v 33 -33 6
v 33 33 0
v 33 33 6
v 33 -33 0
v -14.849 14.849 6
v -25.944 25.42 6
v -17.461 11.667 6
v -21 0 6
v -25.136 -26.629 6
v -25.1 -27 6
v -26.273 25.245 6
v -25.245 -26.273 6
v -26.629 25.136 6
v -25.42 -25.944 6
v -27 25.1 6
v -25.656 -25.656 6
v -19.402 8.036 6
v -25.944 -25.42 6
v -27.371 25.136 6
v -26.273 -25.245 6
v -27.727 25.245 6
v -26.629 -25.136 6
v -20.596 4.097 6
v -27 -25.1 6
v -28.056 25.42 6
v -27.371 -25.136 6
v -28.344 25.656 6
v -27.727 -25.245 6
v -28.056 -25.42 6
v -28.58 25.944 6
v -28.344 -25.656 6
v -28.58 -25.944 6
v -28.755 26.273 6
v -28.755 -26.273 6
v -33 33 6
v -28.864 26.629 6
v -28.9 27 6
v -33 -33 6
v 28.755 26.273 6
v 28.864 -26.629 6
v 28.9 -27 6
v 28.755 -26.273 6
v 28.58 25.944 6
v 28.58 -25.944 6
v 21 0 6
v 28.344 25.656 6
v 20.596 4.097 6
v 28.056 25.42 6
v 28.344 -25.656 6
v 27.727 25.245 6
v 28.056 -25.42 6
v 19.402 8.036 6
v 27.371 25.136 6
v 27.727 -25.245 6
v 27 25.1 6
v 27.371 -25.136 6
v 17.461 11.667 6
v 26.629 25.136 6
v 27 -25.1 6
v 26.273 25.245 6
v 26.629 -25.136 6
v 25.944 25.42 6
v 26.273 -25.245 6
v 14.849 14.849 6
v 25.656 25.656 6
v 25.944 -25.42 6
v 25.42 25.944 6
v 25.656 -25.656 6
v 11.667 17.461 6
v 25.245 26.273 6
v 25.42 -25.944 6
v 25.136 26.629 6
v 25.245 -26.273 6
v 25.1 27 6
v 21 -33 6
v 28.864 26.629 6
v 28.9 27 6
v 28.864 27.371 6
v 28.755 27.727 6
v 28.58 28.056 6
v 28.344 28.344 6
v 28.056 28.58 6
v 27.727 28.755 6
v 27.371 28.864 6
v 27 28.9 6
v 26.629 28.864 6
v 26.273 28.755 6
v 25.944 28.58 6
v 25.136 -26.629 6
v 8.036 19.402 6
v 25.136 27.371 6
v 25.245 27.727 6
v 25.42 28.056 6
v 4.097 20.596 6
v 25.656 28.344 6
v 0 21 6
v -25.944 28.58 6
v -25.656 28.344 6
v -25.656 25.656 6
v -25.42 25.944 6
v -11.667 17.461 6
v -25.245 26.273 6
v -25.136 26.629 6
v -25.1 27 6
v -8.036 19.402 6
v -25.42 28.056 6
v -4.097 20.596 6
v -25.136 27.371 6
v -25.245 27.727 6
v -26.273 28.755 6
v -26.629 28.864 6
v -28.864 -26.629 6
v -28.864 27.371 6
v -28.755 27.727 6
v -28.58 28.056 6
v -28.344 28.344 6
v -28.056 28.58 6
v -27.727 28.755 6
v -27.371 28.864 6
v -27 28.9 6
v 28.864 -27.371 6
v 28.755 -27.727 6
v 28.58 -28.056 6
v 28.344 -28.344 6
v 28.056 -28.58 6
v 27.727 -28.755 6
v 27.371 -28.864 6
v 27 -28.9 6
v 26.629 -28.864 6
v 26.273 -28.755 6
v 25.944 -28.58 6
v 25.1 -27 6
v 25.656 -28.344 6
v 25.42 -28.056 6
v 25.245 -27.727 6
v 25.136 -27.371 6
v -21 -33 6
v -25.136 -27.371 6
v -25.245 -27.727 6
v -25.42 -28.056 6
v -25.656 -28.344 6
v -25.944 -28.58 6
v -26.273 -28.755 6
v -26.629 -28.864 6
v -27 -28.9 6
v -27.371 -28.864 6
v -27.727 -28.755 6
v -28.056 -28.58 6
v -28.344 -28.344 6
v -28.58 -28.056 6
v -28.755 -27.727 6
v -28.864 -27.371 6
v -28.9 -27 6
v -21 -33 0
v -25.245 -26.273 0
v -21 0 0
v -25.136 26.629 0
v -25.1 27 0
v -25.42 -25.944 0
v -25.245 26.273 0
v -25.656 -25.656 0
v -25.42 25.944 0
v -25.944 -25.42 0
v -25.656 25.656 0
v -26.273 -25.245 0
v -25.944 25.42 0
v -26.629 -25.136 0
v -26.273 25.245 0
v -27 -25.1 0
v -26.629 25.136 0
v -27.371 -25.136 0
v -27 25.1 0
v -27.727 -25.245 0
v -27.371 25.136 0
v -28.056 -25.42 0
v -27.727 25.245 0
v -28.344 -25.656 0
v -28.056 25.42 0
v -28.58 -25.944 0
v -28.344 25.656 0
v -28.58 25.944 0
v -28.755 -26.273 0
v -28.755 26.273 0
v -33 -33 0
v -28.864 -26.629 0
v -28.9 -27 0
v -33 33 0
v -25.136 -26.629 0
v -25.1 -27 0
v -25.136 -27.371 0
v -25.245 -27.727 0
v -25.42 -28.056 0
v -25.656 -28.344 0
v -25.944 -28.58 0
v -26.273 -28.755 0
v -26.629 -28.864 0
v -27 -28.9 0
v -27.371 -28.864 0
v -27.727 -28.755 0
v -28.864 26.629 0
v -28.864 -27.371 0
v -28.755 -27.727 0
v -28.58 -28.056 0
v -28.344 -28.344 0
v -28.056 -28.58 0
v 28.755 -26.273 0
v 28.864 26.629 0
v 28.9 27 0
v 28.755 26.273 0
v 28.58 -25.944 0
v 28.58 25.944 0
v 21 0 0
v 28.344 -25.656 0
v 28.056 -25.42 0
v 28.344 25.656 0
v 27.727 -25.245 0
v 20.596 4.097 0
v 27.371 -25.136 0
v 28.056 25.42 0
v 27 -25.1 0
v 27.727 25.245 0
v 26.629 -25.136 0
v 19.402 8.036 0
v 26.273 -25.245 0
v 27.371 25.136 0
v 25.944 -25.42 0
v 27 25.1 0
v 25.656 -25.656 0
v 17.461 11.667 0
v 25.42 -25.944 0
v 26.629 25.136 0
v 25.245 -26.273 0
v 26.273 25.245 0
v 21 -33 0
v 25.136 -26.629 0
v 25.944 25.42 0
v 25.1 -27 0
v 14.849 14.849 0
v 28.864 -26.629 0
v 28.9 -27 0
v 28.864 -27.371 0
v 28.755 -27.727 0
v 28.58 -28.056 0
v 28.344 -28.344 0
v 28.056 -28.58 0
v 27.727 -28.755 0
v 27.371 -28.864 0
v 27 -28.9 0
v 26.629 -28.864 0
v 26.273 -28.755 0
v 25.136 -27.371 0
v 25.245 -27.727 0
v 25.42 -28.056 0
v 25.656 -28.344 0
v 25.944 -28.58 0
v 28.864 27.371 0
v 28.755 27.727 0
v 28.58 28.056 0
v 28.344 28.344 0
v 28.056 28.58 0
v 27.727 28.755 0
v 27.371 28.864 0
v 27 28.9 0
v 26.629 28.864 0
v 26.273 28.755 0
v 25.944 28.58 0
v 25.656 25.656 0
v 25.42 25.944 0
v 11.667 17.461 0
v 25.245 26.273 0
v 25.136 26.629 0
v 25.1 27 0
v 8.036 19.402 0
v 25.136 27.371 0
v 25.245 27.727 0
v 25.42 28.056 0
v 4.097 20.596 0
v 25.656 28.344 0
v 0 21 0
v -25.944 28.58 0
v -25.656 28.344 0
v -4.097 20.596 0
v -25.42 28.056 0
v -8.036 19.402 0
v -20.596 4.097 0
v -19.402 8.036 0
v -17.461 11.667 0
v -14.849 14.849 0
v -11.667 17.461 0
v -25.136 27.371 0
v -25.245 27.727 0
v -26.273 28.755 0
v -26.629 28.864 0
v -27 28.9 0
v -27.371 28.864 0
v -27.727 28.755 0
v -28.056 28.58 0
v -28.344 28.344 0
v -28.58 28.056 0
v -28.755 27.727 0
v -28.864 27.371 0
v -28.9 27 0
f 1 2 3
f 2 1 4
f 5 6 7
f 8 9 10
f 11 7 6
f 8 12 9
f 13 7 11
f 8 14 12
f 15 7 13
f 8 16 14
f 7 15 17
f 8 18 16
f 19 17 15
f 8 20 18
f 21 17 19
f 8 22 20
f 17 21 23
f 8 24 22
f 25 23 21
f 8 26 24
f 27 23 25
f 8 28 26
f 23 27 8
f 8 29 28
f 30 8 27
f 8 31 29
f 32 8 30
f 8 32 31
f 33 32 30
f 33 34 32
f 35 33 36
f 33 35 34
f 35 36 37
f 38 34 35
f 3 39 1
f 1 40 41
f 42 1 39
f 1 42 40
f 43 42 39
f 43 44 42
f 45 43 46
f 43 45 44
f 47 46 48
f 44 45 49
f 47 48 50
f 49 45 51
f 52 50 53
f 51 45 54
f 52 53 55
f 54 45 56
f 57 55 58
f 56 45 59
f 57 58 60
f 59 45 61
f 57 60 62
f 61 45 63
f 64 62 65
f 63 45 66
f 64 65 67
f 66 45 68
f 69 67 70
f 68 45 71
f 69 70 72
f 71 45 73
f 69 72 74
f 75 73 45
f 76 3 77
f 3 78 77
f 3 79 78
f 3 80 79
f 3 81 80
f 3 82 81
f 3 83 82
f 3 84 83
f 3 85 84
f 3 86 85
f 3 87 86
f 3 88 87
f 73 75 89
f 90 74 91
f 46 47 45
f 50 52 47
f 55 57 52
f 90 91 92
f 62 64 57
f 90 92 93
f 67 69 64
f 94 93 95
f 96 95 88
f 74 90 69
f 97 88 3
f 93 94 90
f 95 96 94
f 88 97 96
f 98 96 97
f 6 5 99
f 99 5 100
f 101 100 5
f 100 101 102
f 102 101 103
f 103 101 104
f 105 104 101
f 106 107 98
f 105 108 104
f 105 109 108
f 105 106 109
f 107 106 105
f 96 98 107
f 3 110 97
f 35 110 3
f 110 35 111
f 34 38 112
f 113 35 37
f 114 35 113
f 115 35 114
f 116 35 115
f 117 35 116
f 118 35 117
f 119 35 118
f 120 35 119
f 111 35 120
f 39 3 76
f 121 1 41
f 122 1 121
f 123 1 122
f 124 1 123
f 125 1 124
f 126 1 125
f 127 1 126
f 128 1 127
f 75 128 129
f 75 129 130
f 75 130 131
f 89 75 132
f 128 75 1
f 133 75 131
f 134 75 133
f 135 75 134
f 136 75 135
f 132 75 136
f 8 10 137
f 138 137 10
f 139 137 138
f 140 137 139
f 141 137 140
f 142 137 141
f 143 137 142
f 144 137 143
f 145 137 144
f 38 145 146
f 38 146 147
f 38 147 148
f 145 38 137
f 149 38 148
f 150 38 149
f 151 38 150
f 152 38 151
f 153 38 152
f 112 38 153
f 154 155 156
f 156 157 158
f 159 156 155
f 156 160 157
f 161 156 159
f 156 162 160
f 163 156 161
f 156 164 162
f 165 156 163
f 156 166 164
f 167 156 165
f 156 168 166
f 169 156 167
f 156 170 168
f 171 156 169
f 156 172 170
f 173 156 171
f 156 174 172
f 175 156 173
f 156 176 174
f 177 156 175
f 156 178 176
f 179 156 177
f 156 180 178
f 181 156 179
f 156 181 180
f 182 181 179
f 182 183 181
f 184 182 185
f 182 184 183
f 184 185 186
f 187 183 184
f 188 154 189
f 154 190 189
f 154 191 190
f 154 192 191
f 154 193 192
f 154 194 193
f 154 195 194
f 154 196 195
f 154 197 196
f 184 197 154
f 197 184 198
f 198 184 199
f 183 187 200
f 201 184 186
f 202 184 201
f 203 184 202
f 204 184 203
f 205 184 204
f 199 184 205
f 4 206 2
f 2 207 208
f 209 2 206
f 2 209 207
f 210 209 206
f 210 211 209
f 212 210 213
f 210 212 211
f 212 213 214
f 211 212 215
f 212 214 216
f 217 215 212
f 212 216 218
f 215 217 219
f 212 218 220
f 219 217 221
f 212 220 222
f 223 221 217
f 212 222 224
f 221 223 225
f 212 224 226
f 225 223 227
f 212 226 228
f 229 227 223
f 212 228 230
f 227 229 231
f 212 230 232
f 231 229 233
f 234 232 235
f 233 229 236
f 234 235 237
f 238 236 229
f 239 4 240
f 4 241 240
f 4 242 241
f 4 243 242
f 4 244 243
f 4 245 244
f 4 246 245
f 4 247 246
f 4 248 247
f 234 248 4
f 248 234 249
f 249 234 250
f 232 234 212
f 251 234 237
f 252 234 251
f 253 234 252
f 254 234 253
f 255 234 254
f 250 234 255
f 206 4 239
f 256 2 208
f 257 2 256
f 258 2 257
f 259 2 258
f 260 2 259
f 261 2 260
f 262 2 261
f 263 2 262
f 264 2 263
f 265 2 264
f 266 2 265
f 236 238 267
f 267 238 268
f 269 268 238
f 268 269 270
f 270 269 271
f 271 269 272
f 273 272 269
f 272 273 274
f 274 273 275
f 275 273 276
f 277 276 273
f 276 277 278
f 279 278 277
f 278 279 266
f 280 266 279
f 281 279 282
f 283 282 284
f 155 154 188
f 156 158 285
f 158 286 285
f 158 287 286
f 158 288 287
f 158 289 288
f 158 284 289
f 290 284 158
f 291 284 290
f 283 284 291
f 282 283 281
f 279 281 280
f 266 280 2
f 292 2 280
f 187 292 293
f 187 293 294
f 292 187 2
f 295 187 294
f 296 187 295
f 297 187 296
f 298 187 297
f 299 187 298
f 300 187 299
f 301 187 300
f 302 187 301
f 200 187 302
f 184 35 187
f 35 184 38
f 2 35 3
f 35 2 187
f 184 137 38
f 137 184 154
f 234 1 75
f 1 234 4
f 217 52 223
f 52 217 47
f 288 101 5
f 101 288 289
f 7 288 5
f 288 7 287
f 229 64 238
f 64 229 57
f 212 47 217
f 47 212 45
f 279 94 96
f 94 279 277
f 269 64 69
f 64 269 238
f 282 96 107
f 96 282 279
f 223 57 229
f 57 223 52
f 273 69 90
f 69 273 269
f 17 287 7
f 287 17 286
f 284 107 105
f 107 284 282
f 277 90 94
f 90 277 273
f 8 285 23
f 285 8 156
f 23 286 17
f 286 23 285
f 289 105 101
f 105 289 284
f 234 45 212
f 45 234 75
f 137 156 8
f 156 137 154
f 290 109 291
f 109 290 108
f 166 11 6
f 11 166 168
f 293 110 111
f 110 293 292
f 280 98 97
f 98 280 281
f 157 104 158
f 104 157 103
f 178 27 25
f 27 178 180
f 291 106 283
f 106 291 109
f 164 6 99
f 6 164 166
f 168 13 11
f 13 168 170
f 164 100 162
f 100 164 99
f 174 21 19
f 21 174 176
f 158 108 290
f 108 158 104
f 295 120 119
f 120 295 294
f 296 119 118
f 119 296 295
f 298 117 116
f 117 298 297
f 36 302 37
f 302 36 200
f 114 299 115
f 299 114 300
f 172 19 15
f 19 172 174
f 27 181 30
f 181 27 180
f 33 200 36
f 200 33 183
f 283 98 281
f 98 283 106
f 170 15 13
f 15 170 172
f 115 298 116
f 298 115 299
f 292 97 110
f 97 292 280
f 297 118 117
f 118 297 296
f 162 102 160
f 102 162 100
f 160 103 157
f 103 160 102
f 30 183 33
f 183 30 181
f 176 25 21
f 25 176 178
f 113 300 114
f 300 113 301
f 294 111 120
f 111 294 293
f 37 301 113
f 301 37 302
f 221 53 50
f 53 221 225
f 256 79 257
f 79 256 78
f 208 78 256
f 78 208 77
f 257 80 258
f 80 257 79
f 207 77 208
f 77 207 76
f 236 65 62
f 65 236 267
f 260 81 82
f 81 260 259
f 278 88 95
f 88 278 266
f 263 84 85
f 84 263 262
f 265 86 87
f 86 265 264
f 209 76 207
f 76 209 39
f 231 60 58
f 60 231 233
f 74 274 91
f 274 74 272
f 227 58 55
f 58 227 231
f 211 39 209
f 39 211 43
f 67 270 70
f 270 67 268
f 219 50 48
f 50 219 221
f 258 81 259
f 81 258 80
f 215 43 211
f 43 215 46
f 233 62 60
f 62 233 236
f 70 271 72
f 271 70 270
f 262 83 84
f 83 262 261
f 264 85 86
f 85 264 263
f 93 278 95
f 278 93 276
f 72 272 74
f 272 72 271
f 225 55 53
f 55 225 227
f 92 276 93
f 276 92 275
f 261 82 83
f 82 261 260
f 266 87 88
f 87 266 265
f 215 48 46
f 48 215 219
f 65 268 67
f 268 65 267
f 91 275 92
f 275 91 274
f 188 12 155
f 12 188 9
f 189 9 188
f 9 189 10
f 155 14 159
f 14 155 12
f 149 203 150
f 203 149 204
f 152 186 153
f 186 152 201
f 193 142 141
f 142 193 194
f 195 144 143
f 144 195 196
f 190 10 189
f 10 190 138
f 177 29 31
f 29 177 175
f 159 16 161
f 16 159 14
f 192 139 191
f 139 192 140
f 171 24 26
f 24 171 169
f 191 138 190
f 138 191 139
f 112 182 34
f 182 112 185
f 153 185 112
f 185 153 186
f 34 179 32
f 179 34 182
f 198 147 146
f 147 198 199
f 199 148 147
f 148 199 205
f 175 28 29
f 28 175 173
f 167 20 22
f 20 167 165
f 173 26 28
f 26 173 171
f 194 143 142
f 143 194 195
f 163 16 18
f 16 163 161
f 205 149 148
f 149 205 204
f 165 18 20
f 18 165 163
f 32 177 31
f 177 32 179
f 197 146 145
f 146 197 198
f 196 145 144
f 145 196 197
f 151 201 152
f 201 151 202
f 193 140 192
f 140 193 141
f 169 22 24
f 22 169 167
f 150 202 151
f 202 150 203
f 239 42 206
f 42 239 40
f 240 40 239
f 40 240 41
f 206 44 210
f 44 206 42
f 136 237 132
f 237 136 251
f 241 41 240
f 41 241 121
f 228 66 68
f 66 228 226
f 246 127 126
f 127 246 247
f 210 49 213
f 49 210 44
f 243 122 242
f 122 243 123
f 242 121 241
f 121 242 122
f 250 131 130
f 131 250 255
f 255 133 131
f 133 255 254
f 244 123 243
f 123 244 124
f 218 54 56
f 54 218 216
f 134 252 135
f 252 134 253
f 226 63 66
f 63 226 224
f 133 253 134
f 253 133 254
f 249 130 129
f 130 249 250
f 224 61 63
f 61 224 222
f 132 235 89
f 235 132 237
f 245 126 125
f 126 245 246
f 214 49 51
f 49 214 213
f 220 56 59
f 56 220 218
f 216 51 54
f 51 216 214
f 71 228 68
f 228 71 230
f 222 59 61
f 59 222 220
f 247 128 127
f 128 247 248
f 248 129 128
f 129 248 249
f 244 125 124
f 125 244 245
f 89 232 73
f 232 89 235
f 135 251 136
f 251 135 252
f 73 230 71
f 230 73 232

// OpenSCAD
//
// bracket to secure ~ 40mm dia pads of child safety gate
//

thick = 6;
diam = 42;
edge = 12;
wide = diam + 2*edge;

mtg_dia = 3.8;

$fn=32;

difference() {
     translate( [-wide/2, -wide/2, 0])
	  cube( [wide, wide, thick]);
     translate( [0, 0, -1])
	  cylinder( h=thick+2, d=diam);
     translate( [-diam/2, -(wide/2+1), -1])
	  cube( [diam, diam/2+edge+1, thick+2]);
		
     translate( [-(diam/2+edge/2), (diam/2+edge/2), -1])
	  cylinder( h=thick+2, d=mtg_dia);
     translate( [(diam/2+edge/2), (diam/2+edge/2), -1])
	  cylinder( h=thick+2, d=mtg_dia);

     translate( [-(diam/2+edge/2), -(diam/2+edge/2), -1])
	  cylinder( h=thick+2, d=mtg_dia);
     translate( [(diam/2+edge/2), -(diam/2+edge/2), -1])
	  cylinder( h=thick+2, d=mtg_dia);

}
